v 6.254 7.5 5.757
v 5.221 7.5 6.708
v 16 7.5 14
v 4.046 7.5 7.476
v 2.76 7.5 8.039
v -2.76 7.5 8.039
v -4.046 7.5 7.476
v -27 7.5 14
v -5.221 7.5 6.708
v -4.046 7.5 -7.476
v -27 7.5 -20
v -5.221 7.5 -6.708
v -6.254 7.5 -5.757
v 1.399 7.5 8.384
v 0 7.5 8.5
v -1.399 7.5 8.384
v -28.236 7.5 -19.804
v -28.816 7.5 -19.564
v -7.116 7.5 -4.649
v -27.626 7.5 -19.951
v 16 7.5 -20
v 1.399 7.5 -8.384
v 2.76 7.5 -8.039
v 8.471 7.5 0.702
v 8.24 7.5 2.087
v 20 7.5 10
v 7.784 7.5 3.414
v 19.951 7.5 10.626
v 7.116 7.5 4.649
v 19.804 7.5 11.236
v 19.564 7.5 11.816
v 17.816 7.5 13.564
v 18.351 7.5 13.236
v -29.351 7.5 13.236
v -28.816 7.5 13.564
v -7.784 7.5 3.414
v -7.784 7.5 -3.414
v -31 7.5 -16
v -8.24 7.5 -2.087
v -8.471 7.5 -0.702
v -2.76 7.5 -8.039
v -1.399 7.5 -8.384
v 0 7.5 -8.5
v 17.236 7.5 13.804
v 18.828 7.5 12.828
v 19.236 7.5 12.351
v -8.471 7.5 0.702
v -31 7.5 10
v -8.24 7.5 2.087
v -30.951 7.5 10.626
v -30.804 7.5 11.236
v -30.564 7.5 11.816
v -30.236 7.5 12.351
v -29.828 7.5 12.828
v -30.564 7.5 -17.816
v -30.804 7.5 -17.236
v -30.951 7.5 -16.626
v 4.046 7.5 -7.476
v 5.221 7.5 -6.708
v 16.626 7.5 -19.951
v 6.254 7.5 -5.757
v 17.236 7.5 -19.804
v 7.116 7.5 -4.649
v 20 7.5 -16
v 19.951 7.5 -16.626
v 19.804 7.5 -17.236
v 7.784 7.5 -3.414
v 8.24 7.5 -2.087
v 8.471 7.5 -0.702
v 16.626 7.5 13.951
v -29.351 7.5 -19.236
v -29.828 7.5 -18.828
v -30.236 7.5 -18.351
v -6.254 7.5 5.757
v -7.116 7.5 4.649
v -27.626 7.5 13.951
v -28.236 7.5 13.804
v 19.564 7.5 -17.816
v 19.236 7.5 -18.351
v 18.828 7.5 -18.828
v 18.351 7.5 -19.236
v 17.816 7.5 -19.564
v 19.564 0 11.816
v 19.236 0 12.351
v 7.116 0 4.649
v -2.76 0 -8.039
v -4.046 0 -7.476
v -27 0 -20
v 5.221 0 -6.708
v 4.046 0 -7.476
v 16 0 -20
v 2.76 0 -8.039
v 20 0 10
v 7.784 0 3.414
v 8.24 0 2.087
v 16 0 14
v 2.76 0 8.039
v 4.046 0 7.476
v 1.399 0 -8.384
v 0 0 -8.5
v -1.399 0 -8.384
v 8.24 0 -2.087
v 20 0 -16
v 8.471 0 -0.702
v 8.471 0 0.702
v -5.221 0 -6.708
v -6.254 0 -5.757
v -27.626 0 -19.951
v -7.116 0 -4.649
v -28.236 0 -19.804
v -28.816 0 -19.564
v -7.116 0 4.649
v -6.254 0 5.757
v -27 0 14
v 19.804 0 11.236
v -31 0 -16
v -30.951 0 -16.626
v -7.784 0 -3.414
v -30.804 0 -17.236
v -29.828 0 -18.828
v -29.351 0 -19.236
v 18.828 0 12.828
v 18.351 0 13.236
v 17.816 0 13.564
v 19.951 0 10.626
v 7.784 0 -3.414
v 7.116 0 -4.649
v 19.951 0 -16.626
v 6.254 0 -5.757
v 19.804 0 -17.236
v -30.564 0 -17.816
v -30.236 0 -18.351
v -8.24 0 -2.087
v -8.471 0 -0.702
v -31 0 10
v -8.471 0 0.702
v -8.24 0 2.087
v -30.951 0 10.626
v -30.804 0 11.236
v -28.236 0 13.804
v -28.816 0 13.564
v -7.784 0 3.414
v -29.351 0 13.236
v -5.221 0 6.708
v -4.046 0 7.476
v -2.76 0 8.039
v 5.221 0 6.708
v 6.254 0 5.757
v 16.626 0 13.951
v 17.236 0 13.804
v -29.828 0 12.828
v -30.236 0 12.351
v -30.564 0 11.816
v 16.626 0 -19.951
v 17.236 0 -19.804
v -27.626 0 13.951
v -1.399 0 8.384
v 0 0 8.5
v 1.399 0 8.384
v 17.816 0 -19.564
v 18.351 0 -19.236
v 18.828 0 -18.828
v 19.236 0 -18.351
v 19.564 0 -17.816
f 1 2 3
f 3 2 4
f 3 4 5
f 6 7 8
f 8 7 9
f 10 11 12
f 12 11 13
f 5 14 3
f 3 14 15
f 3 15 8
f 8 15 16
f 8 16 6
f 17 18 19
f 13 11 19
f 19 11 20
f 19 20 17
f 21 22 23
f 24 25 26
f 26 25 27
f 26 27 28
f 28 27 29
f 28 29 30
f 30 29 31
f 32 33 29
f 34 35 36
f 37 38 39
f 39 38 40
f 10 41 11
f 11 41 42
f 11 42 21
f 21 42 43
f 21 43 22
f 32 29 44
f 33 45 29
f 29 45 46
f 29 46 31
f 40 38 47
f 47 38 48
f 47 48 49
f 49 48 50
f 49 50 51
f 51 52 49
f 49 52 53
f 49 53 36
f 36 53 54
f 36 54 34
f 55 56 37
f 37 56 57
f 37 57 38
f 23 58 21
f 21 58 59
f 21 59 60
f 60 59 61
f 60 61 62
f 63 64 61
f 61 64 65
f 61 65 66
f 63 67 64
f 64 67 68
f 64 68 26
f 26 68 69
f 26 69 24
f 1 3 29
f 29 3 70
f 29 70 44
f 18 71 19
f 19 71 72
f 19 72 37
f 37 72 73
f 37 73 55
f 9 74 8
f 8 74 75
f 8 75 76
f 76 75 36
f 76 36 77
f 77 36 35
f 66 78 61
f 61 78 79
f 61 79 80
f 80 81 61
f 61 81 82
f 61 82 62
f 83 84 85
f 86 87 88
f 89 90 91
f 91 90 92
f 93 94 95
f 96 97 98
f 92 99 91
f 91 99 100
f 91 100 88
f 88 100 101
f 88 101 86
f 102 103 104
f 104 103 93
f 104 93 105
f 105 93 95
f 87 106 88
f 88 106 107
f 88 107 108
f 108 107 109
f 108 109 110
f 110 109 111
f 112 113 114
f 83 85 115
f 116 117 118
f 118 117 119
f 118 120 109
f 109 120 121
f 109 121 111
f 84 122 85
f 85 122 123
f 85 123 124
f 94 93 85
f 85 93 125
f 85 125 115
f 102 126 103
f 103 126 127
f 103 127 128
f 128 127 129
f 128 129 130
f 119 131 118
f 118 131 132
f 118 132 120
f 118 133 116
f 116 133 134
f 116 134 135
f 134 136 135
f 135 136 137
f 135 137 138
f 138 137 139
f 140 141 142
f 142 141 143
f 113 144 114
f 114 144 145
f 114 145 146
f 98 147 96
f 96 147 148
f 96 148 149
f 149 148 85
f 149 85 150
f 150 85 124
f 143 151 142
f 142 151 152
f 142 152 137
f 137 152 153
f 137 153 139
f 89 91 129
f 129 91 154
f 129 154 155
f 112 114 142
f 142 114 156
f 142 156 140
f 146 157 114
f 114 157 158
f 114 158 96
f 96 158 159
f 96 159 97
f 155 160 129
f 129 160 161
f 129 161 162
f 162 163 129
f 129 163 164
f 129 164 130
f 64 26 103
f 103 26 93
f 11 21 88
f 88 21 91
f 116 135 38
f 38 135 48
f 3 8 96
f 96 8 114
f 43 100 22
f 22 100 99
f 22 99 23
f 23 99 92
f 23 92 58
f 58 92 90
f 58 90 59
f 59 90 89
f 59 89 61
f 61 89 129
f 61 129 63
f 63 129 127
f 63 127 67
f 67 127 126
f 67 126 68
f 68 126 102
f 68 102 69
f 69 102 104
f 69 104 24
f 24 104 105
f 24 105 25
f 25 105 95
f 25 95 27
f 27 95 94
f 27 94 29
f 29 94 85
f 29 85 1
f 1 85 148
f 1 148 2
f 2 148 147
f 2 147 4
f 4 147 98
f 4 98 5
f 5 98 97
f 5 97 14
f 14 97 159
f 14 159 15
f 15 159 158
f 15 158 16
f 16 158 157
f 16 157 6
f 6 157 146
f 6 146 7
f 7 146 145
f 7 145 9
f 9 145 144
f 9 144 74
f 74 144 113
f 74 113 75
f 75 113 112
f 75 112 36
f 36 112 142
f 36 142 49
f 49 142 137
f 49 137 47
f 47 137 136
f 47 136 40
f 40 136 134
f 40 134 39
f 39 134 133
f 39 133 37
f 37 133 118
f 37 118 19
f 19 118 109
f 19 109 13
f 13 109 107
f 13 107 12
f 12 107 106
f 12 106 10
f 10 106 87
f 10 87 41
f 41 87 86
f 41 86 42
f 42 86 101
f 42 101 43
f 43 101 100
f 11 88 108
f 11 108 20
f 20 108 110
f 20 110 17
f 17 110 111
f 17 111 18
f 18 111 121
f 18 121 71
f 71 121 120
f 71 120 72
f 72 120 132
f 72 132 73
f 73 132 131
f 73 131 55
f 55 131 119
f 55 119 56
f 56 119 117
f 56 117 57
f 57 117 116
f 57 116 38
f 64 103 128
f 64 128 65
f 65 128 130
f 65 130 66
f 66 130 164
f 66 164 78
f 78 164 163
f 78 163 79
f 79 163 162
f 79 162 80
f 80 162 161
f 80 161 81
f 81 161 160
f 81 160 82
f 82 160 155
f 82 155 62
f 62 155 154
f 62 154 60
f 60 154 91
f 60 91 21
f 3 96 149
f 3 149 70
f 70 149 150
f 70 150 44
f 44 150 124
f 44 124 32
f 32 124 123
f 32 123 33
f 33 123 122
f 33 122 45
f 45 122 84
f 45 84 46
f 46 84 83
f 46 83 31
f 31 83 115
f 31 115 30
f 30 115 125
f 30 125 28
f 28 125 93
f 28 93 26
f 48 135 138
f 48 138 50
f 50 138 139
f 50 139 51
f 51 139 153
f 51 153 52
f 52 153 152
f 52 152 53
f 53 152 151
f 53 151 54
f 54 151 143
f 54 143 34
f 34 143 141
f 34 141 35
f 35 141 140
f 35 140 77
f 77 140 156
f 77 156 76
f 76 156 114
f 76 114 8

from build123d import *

# Parameters (mm, degrees)
SKETCH1_R           = 8.5
BOSS_EXTRUDE1_DEPTH = 7.5
FILLET1_R           = 4


with BuildPart() as part:
    # Sketch1 → Boss-Extrude1 (new body)
    with BuildSketch(Plane(origin=(0, 0, 0), x_dir=(1, 0, 0), z_dir=(0, 1, 0))):
        Polygon((-31, 0), (-31, 20), (20, 20), (20, 0), (20, -14), (-31, -14), align=None)
        with Locations(Location((0, 0, 0), (0, 0, 270))):
            Circle(SKETCH1_R, mode=Mode.SUBTRACT)
    extrude(amount=BOSS_EXTRUDE1_DEPTH)

    # Fillet1
    fillet1_edges = [part.edges().sort_by_distance(p)[0] for p in [
        (20, 3.75, 14),
        (-31, 3.75, 14),
        (-31, 3.75, -20),
        (20, 3.75, -20),
    ]]
    fillet(fillet1_edges, radius=FILLET1_R)


solid = part.part
